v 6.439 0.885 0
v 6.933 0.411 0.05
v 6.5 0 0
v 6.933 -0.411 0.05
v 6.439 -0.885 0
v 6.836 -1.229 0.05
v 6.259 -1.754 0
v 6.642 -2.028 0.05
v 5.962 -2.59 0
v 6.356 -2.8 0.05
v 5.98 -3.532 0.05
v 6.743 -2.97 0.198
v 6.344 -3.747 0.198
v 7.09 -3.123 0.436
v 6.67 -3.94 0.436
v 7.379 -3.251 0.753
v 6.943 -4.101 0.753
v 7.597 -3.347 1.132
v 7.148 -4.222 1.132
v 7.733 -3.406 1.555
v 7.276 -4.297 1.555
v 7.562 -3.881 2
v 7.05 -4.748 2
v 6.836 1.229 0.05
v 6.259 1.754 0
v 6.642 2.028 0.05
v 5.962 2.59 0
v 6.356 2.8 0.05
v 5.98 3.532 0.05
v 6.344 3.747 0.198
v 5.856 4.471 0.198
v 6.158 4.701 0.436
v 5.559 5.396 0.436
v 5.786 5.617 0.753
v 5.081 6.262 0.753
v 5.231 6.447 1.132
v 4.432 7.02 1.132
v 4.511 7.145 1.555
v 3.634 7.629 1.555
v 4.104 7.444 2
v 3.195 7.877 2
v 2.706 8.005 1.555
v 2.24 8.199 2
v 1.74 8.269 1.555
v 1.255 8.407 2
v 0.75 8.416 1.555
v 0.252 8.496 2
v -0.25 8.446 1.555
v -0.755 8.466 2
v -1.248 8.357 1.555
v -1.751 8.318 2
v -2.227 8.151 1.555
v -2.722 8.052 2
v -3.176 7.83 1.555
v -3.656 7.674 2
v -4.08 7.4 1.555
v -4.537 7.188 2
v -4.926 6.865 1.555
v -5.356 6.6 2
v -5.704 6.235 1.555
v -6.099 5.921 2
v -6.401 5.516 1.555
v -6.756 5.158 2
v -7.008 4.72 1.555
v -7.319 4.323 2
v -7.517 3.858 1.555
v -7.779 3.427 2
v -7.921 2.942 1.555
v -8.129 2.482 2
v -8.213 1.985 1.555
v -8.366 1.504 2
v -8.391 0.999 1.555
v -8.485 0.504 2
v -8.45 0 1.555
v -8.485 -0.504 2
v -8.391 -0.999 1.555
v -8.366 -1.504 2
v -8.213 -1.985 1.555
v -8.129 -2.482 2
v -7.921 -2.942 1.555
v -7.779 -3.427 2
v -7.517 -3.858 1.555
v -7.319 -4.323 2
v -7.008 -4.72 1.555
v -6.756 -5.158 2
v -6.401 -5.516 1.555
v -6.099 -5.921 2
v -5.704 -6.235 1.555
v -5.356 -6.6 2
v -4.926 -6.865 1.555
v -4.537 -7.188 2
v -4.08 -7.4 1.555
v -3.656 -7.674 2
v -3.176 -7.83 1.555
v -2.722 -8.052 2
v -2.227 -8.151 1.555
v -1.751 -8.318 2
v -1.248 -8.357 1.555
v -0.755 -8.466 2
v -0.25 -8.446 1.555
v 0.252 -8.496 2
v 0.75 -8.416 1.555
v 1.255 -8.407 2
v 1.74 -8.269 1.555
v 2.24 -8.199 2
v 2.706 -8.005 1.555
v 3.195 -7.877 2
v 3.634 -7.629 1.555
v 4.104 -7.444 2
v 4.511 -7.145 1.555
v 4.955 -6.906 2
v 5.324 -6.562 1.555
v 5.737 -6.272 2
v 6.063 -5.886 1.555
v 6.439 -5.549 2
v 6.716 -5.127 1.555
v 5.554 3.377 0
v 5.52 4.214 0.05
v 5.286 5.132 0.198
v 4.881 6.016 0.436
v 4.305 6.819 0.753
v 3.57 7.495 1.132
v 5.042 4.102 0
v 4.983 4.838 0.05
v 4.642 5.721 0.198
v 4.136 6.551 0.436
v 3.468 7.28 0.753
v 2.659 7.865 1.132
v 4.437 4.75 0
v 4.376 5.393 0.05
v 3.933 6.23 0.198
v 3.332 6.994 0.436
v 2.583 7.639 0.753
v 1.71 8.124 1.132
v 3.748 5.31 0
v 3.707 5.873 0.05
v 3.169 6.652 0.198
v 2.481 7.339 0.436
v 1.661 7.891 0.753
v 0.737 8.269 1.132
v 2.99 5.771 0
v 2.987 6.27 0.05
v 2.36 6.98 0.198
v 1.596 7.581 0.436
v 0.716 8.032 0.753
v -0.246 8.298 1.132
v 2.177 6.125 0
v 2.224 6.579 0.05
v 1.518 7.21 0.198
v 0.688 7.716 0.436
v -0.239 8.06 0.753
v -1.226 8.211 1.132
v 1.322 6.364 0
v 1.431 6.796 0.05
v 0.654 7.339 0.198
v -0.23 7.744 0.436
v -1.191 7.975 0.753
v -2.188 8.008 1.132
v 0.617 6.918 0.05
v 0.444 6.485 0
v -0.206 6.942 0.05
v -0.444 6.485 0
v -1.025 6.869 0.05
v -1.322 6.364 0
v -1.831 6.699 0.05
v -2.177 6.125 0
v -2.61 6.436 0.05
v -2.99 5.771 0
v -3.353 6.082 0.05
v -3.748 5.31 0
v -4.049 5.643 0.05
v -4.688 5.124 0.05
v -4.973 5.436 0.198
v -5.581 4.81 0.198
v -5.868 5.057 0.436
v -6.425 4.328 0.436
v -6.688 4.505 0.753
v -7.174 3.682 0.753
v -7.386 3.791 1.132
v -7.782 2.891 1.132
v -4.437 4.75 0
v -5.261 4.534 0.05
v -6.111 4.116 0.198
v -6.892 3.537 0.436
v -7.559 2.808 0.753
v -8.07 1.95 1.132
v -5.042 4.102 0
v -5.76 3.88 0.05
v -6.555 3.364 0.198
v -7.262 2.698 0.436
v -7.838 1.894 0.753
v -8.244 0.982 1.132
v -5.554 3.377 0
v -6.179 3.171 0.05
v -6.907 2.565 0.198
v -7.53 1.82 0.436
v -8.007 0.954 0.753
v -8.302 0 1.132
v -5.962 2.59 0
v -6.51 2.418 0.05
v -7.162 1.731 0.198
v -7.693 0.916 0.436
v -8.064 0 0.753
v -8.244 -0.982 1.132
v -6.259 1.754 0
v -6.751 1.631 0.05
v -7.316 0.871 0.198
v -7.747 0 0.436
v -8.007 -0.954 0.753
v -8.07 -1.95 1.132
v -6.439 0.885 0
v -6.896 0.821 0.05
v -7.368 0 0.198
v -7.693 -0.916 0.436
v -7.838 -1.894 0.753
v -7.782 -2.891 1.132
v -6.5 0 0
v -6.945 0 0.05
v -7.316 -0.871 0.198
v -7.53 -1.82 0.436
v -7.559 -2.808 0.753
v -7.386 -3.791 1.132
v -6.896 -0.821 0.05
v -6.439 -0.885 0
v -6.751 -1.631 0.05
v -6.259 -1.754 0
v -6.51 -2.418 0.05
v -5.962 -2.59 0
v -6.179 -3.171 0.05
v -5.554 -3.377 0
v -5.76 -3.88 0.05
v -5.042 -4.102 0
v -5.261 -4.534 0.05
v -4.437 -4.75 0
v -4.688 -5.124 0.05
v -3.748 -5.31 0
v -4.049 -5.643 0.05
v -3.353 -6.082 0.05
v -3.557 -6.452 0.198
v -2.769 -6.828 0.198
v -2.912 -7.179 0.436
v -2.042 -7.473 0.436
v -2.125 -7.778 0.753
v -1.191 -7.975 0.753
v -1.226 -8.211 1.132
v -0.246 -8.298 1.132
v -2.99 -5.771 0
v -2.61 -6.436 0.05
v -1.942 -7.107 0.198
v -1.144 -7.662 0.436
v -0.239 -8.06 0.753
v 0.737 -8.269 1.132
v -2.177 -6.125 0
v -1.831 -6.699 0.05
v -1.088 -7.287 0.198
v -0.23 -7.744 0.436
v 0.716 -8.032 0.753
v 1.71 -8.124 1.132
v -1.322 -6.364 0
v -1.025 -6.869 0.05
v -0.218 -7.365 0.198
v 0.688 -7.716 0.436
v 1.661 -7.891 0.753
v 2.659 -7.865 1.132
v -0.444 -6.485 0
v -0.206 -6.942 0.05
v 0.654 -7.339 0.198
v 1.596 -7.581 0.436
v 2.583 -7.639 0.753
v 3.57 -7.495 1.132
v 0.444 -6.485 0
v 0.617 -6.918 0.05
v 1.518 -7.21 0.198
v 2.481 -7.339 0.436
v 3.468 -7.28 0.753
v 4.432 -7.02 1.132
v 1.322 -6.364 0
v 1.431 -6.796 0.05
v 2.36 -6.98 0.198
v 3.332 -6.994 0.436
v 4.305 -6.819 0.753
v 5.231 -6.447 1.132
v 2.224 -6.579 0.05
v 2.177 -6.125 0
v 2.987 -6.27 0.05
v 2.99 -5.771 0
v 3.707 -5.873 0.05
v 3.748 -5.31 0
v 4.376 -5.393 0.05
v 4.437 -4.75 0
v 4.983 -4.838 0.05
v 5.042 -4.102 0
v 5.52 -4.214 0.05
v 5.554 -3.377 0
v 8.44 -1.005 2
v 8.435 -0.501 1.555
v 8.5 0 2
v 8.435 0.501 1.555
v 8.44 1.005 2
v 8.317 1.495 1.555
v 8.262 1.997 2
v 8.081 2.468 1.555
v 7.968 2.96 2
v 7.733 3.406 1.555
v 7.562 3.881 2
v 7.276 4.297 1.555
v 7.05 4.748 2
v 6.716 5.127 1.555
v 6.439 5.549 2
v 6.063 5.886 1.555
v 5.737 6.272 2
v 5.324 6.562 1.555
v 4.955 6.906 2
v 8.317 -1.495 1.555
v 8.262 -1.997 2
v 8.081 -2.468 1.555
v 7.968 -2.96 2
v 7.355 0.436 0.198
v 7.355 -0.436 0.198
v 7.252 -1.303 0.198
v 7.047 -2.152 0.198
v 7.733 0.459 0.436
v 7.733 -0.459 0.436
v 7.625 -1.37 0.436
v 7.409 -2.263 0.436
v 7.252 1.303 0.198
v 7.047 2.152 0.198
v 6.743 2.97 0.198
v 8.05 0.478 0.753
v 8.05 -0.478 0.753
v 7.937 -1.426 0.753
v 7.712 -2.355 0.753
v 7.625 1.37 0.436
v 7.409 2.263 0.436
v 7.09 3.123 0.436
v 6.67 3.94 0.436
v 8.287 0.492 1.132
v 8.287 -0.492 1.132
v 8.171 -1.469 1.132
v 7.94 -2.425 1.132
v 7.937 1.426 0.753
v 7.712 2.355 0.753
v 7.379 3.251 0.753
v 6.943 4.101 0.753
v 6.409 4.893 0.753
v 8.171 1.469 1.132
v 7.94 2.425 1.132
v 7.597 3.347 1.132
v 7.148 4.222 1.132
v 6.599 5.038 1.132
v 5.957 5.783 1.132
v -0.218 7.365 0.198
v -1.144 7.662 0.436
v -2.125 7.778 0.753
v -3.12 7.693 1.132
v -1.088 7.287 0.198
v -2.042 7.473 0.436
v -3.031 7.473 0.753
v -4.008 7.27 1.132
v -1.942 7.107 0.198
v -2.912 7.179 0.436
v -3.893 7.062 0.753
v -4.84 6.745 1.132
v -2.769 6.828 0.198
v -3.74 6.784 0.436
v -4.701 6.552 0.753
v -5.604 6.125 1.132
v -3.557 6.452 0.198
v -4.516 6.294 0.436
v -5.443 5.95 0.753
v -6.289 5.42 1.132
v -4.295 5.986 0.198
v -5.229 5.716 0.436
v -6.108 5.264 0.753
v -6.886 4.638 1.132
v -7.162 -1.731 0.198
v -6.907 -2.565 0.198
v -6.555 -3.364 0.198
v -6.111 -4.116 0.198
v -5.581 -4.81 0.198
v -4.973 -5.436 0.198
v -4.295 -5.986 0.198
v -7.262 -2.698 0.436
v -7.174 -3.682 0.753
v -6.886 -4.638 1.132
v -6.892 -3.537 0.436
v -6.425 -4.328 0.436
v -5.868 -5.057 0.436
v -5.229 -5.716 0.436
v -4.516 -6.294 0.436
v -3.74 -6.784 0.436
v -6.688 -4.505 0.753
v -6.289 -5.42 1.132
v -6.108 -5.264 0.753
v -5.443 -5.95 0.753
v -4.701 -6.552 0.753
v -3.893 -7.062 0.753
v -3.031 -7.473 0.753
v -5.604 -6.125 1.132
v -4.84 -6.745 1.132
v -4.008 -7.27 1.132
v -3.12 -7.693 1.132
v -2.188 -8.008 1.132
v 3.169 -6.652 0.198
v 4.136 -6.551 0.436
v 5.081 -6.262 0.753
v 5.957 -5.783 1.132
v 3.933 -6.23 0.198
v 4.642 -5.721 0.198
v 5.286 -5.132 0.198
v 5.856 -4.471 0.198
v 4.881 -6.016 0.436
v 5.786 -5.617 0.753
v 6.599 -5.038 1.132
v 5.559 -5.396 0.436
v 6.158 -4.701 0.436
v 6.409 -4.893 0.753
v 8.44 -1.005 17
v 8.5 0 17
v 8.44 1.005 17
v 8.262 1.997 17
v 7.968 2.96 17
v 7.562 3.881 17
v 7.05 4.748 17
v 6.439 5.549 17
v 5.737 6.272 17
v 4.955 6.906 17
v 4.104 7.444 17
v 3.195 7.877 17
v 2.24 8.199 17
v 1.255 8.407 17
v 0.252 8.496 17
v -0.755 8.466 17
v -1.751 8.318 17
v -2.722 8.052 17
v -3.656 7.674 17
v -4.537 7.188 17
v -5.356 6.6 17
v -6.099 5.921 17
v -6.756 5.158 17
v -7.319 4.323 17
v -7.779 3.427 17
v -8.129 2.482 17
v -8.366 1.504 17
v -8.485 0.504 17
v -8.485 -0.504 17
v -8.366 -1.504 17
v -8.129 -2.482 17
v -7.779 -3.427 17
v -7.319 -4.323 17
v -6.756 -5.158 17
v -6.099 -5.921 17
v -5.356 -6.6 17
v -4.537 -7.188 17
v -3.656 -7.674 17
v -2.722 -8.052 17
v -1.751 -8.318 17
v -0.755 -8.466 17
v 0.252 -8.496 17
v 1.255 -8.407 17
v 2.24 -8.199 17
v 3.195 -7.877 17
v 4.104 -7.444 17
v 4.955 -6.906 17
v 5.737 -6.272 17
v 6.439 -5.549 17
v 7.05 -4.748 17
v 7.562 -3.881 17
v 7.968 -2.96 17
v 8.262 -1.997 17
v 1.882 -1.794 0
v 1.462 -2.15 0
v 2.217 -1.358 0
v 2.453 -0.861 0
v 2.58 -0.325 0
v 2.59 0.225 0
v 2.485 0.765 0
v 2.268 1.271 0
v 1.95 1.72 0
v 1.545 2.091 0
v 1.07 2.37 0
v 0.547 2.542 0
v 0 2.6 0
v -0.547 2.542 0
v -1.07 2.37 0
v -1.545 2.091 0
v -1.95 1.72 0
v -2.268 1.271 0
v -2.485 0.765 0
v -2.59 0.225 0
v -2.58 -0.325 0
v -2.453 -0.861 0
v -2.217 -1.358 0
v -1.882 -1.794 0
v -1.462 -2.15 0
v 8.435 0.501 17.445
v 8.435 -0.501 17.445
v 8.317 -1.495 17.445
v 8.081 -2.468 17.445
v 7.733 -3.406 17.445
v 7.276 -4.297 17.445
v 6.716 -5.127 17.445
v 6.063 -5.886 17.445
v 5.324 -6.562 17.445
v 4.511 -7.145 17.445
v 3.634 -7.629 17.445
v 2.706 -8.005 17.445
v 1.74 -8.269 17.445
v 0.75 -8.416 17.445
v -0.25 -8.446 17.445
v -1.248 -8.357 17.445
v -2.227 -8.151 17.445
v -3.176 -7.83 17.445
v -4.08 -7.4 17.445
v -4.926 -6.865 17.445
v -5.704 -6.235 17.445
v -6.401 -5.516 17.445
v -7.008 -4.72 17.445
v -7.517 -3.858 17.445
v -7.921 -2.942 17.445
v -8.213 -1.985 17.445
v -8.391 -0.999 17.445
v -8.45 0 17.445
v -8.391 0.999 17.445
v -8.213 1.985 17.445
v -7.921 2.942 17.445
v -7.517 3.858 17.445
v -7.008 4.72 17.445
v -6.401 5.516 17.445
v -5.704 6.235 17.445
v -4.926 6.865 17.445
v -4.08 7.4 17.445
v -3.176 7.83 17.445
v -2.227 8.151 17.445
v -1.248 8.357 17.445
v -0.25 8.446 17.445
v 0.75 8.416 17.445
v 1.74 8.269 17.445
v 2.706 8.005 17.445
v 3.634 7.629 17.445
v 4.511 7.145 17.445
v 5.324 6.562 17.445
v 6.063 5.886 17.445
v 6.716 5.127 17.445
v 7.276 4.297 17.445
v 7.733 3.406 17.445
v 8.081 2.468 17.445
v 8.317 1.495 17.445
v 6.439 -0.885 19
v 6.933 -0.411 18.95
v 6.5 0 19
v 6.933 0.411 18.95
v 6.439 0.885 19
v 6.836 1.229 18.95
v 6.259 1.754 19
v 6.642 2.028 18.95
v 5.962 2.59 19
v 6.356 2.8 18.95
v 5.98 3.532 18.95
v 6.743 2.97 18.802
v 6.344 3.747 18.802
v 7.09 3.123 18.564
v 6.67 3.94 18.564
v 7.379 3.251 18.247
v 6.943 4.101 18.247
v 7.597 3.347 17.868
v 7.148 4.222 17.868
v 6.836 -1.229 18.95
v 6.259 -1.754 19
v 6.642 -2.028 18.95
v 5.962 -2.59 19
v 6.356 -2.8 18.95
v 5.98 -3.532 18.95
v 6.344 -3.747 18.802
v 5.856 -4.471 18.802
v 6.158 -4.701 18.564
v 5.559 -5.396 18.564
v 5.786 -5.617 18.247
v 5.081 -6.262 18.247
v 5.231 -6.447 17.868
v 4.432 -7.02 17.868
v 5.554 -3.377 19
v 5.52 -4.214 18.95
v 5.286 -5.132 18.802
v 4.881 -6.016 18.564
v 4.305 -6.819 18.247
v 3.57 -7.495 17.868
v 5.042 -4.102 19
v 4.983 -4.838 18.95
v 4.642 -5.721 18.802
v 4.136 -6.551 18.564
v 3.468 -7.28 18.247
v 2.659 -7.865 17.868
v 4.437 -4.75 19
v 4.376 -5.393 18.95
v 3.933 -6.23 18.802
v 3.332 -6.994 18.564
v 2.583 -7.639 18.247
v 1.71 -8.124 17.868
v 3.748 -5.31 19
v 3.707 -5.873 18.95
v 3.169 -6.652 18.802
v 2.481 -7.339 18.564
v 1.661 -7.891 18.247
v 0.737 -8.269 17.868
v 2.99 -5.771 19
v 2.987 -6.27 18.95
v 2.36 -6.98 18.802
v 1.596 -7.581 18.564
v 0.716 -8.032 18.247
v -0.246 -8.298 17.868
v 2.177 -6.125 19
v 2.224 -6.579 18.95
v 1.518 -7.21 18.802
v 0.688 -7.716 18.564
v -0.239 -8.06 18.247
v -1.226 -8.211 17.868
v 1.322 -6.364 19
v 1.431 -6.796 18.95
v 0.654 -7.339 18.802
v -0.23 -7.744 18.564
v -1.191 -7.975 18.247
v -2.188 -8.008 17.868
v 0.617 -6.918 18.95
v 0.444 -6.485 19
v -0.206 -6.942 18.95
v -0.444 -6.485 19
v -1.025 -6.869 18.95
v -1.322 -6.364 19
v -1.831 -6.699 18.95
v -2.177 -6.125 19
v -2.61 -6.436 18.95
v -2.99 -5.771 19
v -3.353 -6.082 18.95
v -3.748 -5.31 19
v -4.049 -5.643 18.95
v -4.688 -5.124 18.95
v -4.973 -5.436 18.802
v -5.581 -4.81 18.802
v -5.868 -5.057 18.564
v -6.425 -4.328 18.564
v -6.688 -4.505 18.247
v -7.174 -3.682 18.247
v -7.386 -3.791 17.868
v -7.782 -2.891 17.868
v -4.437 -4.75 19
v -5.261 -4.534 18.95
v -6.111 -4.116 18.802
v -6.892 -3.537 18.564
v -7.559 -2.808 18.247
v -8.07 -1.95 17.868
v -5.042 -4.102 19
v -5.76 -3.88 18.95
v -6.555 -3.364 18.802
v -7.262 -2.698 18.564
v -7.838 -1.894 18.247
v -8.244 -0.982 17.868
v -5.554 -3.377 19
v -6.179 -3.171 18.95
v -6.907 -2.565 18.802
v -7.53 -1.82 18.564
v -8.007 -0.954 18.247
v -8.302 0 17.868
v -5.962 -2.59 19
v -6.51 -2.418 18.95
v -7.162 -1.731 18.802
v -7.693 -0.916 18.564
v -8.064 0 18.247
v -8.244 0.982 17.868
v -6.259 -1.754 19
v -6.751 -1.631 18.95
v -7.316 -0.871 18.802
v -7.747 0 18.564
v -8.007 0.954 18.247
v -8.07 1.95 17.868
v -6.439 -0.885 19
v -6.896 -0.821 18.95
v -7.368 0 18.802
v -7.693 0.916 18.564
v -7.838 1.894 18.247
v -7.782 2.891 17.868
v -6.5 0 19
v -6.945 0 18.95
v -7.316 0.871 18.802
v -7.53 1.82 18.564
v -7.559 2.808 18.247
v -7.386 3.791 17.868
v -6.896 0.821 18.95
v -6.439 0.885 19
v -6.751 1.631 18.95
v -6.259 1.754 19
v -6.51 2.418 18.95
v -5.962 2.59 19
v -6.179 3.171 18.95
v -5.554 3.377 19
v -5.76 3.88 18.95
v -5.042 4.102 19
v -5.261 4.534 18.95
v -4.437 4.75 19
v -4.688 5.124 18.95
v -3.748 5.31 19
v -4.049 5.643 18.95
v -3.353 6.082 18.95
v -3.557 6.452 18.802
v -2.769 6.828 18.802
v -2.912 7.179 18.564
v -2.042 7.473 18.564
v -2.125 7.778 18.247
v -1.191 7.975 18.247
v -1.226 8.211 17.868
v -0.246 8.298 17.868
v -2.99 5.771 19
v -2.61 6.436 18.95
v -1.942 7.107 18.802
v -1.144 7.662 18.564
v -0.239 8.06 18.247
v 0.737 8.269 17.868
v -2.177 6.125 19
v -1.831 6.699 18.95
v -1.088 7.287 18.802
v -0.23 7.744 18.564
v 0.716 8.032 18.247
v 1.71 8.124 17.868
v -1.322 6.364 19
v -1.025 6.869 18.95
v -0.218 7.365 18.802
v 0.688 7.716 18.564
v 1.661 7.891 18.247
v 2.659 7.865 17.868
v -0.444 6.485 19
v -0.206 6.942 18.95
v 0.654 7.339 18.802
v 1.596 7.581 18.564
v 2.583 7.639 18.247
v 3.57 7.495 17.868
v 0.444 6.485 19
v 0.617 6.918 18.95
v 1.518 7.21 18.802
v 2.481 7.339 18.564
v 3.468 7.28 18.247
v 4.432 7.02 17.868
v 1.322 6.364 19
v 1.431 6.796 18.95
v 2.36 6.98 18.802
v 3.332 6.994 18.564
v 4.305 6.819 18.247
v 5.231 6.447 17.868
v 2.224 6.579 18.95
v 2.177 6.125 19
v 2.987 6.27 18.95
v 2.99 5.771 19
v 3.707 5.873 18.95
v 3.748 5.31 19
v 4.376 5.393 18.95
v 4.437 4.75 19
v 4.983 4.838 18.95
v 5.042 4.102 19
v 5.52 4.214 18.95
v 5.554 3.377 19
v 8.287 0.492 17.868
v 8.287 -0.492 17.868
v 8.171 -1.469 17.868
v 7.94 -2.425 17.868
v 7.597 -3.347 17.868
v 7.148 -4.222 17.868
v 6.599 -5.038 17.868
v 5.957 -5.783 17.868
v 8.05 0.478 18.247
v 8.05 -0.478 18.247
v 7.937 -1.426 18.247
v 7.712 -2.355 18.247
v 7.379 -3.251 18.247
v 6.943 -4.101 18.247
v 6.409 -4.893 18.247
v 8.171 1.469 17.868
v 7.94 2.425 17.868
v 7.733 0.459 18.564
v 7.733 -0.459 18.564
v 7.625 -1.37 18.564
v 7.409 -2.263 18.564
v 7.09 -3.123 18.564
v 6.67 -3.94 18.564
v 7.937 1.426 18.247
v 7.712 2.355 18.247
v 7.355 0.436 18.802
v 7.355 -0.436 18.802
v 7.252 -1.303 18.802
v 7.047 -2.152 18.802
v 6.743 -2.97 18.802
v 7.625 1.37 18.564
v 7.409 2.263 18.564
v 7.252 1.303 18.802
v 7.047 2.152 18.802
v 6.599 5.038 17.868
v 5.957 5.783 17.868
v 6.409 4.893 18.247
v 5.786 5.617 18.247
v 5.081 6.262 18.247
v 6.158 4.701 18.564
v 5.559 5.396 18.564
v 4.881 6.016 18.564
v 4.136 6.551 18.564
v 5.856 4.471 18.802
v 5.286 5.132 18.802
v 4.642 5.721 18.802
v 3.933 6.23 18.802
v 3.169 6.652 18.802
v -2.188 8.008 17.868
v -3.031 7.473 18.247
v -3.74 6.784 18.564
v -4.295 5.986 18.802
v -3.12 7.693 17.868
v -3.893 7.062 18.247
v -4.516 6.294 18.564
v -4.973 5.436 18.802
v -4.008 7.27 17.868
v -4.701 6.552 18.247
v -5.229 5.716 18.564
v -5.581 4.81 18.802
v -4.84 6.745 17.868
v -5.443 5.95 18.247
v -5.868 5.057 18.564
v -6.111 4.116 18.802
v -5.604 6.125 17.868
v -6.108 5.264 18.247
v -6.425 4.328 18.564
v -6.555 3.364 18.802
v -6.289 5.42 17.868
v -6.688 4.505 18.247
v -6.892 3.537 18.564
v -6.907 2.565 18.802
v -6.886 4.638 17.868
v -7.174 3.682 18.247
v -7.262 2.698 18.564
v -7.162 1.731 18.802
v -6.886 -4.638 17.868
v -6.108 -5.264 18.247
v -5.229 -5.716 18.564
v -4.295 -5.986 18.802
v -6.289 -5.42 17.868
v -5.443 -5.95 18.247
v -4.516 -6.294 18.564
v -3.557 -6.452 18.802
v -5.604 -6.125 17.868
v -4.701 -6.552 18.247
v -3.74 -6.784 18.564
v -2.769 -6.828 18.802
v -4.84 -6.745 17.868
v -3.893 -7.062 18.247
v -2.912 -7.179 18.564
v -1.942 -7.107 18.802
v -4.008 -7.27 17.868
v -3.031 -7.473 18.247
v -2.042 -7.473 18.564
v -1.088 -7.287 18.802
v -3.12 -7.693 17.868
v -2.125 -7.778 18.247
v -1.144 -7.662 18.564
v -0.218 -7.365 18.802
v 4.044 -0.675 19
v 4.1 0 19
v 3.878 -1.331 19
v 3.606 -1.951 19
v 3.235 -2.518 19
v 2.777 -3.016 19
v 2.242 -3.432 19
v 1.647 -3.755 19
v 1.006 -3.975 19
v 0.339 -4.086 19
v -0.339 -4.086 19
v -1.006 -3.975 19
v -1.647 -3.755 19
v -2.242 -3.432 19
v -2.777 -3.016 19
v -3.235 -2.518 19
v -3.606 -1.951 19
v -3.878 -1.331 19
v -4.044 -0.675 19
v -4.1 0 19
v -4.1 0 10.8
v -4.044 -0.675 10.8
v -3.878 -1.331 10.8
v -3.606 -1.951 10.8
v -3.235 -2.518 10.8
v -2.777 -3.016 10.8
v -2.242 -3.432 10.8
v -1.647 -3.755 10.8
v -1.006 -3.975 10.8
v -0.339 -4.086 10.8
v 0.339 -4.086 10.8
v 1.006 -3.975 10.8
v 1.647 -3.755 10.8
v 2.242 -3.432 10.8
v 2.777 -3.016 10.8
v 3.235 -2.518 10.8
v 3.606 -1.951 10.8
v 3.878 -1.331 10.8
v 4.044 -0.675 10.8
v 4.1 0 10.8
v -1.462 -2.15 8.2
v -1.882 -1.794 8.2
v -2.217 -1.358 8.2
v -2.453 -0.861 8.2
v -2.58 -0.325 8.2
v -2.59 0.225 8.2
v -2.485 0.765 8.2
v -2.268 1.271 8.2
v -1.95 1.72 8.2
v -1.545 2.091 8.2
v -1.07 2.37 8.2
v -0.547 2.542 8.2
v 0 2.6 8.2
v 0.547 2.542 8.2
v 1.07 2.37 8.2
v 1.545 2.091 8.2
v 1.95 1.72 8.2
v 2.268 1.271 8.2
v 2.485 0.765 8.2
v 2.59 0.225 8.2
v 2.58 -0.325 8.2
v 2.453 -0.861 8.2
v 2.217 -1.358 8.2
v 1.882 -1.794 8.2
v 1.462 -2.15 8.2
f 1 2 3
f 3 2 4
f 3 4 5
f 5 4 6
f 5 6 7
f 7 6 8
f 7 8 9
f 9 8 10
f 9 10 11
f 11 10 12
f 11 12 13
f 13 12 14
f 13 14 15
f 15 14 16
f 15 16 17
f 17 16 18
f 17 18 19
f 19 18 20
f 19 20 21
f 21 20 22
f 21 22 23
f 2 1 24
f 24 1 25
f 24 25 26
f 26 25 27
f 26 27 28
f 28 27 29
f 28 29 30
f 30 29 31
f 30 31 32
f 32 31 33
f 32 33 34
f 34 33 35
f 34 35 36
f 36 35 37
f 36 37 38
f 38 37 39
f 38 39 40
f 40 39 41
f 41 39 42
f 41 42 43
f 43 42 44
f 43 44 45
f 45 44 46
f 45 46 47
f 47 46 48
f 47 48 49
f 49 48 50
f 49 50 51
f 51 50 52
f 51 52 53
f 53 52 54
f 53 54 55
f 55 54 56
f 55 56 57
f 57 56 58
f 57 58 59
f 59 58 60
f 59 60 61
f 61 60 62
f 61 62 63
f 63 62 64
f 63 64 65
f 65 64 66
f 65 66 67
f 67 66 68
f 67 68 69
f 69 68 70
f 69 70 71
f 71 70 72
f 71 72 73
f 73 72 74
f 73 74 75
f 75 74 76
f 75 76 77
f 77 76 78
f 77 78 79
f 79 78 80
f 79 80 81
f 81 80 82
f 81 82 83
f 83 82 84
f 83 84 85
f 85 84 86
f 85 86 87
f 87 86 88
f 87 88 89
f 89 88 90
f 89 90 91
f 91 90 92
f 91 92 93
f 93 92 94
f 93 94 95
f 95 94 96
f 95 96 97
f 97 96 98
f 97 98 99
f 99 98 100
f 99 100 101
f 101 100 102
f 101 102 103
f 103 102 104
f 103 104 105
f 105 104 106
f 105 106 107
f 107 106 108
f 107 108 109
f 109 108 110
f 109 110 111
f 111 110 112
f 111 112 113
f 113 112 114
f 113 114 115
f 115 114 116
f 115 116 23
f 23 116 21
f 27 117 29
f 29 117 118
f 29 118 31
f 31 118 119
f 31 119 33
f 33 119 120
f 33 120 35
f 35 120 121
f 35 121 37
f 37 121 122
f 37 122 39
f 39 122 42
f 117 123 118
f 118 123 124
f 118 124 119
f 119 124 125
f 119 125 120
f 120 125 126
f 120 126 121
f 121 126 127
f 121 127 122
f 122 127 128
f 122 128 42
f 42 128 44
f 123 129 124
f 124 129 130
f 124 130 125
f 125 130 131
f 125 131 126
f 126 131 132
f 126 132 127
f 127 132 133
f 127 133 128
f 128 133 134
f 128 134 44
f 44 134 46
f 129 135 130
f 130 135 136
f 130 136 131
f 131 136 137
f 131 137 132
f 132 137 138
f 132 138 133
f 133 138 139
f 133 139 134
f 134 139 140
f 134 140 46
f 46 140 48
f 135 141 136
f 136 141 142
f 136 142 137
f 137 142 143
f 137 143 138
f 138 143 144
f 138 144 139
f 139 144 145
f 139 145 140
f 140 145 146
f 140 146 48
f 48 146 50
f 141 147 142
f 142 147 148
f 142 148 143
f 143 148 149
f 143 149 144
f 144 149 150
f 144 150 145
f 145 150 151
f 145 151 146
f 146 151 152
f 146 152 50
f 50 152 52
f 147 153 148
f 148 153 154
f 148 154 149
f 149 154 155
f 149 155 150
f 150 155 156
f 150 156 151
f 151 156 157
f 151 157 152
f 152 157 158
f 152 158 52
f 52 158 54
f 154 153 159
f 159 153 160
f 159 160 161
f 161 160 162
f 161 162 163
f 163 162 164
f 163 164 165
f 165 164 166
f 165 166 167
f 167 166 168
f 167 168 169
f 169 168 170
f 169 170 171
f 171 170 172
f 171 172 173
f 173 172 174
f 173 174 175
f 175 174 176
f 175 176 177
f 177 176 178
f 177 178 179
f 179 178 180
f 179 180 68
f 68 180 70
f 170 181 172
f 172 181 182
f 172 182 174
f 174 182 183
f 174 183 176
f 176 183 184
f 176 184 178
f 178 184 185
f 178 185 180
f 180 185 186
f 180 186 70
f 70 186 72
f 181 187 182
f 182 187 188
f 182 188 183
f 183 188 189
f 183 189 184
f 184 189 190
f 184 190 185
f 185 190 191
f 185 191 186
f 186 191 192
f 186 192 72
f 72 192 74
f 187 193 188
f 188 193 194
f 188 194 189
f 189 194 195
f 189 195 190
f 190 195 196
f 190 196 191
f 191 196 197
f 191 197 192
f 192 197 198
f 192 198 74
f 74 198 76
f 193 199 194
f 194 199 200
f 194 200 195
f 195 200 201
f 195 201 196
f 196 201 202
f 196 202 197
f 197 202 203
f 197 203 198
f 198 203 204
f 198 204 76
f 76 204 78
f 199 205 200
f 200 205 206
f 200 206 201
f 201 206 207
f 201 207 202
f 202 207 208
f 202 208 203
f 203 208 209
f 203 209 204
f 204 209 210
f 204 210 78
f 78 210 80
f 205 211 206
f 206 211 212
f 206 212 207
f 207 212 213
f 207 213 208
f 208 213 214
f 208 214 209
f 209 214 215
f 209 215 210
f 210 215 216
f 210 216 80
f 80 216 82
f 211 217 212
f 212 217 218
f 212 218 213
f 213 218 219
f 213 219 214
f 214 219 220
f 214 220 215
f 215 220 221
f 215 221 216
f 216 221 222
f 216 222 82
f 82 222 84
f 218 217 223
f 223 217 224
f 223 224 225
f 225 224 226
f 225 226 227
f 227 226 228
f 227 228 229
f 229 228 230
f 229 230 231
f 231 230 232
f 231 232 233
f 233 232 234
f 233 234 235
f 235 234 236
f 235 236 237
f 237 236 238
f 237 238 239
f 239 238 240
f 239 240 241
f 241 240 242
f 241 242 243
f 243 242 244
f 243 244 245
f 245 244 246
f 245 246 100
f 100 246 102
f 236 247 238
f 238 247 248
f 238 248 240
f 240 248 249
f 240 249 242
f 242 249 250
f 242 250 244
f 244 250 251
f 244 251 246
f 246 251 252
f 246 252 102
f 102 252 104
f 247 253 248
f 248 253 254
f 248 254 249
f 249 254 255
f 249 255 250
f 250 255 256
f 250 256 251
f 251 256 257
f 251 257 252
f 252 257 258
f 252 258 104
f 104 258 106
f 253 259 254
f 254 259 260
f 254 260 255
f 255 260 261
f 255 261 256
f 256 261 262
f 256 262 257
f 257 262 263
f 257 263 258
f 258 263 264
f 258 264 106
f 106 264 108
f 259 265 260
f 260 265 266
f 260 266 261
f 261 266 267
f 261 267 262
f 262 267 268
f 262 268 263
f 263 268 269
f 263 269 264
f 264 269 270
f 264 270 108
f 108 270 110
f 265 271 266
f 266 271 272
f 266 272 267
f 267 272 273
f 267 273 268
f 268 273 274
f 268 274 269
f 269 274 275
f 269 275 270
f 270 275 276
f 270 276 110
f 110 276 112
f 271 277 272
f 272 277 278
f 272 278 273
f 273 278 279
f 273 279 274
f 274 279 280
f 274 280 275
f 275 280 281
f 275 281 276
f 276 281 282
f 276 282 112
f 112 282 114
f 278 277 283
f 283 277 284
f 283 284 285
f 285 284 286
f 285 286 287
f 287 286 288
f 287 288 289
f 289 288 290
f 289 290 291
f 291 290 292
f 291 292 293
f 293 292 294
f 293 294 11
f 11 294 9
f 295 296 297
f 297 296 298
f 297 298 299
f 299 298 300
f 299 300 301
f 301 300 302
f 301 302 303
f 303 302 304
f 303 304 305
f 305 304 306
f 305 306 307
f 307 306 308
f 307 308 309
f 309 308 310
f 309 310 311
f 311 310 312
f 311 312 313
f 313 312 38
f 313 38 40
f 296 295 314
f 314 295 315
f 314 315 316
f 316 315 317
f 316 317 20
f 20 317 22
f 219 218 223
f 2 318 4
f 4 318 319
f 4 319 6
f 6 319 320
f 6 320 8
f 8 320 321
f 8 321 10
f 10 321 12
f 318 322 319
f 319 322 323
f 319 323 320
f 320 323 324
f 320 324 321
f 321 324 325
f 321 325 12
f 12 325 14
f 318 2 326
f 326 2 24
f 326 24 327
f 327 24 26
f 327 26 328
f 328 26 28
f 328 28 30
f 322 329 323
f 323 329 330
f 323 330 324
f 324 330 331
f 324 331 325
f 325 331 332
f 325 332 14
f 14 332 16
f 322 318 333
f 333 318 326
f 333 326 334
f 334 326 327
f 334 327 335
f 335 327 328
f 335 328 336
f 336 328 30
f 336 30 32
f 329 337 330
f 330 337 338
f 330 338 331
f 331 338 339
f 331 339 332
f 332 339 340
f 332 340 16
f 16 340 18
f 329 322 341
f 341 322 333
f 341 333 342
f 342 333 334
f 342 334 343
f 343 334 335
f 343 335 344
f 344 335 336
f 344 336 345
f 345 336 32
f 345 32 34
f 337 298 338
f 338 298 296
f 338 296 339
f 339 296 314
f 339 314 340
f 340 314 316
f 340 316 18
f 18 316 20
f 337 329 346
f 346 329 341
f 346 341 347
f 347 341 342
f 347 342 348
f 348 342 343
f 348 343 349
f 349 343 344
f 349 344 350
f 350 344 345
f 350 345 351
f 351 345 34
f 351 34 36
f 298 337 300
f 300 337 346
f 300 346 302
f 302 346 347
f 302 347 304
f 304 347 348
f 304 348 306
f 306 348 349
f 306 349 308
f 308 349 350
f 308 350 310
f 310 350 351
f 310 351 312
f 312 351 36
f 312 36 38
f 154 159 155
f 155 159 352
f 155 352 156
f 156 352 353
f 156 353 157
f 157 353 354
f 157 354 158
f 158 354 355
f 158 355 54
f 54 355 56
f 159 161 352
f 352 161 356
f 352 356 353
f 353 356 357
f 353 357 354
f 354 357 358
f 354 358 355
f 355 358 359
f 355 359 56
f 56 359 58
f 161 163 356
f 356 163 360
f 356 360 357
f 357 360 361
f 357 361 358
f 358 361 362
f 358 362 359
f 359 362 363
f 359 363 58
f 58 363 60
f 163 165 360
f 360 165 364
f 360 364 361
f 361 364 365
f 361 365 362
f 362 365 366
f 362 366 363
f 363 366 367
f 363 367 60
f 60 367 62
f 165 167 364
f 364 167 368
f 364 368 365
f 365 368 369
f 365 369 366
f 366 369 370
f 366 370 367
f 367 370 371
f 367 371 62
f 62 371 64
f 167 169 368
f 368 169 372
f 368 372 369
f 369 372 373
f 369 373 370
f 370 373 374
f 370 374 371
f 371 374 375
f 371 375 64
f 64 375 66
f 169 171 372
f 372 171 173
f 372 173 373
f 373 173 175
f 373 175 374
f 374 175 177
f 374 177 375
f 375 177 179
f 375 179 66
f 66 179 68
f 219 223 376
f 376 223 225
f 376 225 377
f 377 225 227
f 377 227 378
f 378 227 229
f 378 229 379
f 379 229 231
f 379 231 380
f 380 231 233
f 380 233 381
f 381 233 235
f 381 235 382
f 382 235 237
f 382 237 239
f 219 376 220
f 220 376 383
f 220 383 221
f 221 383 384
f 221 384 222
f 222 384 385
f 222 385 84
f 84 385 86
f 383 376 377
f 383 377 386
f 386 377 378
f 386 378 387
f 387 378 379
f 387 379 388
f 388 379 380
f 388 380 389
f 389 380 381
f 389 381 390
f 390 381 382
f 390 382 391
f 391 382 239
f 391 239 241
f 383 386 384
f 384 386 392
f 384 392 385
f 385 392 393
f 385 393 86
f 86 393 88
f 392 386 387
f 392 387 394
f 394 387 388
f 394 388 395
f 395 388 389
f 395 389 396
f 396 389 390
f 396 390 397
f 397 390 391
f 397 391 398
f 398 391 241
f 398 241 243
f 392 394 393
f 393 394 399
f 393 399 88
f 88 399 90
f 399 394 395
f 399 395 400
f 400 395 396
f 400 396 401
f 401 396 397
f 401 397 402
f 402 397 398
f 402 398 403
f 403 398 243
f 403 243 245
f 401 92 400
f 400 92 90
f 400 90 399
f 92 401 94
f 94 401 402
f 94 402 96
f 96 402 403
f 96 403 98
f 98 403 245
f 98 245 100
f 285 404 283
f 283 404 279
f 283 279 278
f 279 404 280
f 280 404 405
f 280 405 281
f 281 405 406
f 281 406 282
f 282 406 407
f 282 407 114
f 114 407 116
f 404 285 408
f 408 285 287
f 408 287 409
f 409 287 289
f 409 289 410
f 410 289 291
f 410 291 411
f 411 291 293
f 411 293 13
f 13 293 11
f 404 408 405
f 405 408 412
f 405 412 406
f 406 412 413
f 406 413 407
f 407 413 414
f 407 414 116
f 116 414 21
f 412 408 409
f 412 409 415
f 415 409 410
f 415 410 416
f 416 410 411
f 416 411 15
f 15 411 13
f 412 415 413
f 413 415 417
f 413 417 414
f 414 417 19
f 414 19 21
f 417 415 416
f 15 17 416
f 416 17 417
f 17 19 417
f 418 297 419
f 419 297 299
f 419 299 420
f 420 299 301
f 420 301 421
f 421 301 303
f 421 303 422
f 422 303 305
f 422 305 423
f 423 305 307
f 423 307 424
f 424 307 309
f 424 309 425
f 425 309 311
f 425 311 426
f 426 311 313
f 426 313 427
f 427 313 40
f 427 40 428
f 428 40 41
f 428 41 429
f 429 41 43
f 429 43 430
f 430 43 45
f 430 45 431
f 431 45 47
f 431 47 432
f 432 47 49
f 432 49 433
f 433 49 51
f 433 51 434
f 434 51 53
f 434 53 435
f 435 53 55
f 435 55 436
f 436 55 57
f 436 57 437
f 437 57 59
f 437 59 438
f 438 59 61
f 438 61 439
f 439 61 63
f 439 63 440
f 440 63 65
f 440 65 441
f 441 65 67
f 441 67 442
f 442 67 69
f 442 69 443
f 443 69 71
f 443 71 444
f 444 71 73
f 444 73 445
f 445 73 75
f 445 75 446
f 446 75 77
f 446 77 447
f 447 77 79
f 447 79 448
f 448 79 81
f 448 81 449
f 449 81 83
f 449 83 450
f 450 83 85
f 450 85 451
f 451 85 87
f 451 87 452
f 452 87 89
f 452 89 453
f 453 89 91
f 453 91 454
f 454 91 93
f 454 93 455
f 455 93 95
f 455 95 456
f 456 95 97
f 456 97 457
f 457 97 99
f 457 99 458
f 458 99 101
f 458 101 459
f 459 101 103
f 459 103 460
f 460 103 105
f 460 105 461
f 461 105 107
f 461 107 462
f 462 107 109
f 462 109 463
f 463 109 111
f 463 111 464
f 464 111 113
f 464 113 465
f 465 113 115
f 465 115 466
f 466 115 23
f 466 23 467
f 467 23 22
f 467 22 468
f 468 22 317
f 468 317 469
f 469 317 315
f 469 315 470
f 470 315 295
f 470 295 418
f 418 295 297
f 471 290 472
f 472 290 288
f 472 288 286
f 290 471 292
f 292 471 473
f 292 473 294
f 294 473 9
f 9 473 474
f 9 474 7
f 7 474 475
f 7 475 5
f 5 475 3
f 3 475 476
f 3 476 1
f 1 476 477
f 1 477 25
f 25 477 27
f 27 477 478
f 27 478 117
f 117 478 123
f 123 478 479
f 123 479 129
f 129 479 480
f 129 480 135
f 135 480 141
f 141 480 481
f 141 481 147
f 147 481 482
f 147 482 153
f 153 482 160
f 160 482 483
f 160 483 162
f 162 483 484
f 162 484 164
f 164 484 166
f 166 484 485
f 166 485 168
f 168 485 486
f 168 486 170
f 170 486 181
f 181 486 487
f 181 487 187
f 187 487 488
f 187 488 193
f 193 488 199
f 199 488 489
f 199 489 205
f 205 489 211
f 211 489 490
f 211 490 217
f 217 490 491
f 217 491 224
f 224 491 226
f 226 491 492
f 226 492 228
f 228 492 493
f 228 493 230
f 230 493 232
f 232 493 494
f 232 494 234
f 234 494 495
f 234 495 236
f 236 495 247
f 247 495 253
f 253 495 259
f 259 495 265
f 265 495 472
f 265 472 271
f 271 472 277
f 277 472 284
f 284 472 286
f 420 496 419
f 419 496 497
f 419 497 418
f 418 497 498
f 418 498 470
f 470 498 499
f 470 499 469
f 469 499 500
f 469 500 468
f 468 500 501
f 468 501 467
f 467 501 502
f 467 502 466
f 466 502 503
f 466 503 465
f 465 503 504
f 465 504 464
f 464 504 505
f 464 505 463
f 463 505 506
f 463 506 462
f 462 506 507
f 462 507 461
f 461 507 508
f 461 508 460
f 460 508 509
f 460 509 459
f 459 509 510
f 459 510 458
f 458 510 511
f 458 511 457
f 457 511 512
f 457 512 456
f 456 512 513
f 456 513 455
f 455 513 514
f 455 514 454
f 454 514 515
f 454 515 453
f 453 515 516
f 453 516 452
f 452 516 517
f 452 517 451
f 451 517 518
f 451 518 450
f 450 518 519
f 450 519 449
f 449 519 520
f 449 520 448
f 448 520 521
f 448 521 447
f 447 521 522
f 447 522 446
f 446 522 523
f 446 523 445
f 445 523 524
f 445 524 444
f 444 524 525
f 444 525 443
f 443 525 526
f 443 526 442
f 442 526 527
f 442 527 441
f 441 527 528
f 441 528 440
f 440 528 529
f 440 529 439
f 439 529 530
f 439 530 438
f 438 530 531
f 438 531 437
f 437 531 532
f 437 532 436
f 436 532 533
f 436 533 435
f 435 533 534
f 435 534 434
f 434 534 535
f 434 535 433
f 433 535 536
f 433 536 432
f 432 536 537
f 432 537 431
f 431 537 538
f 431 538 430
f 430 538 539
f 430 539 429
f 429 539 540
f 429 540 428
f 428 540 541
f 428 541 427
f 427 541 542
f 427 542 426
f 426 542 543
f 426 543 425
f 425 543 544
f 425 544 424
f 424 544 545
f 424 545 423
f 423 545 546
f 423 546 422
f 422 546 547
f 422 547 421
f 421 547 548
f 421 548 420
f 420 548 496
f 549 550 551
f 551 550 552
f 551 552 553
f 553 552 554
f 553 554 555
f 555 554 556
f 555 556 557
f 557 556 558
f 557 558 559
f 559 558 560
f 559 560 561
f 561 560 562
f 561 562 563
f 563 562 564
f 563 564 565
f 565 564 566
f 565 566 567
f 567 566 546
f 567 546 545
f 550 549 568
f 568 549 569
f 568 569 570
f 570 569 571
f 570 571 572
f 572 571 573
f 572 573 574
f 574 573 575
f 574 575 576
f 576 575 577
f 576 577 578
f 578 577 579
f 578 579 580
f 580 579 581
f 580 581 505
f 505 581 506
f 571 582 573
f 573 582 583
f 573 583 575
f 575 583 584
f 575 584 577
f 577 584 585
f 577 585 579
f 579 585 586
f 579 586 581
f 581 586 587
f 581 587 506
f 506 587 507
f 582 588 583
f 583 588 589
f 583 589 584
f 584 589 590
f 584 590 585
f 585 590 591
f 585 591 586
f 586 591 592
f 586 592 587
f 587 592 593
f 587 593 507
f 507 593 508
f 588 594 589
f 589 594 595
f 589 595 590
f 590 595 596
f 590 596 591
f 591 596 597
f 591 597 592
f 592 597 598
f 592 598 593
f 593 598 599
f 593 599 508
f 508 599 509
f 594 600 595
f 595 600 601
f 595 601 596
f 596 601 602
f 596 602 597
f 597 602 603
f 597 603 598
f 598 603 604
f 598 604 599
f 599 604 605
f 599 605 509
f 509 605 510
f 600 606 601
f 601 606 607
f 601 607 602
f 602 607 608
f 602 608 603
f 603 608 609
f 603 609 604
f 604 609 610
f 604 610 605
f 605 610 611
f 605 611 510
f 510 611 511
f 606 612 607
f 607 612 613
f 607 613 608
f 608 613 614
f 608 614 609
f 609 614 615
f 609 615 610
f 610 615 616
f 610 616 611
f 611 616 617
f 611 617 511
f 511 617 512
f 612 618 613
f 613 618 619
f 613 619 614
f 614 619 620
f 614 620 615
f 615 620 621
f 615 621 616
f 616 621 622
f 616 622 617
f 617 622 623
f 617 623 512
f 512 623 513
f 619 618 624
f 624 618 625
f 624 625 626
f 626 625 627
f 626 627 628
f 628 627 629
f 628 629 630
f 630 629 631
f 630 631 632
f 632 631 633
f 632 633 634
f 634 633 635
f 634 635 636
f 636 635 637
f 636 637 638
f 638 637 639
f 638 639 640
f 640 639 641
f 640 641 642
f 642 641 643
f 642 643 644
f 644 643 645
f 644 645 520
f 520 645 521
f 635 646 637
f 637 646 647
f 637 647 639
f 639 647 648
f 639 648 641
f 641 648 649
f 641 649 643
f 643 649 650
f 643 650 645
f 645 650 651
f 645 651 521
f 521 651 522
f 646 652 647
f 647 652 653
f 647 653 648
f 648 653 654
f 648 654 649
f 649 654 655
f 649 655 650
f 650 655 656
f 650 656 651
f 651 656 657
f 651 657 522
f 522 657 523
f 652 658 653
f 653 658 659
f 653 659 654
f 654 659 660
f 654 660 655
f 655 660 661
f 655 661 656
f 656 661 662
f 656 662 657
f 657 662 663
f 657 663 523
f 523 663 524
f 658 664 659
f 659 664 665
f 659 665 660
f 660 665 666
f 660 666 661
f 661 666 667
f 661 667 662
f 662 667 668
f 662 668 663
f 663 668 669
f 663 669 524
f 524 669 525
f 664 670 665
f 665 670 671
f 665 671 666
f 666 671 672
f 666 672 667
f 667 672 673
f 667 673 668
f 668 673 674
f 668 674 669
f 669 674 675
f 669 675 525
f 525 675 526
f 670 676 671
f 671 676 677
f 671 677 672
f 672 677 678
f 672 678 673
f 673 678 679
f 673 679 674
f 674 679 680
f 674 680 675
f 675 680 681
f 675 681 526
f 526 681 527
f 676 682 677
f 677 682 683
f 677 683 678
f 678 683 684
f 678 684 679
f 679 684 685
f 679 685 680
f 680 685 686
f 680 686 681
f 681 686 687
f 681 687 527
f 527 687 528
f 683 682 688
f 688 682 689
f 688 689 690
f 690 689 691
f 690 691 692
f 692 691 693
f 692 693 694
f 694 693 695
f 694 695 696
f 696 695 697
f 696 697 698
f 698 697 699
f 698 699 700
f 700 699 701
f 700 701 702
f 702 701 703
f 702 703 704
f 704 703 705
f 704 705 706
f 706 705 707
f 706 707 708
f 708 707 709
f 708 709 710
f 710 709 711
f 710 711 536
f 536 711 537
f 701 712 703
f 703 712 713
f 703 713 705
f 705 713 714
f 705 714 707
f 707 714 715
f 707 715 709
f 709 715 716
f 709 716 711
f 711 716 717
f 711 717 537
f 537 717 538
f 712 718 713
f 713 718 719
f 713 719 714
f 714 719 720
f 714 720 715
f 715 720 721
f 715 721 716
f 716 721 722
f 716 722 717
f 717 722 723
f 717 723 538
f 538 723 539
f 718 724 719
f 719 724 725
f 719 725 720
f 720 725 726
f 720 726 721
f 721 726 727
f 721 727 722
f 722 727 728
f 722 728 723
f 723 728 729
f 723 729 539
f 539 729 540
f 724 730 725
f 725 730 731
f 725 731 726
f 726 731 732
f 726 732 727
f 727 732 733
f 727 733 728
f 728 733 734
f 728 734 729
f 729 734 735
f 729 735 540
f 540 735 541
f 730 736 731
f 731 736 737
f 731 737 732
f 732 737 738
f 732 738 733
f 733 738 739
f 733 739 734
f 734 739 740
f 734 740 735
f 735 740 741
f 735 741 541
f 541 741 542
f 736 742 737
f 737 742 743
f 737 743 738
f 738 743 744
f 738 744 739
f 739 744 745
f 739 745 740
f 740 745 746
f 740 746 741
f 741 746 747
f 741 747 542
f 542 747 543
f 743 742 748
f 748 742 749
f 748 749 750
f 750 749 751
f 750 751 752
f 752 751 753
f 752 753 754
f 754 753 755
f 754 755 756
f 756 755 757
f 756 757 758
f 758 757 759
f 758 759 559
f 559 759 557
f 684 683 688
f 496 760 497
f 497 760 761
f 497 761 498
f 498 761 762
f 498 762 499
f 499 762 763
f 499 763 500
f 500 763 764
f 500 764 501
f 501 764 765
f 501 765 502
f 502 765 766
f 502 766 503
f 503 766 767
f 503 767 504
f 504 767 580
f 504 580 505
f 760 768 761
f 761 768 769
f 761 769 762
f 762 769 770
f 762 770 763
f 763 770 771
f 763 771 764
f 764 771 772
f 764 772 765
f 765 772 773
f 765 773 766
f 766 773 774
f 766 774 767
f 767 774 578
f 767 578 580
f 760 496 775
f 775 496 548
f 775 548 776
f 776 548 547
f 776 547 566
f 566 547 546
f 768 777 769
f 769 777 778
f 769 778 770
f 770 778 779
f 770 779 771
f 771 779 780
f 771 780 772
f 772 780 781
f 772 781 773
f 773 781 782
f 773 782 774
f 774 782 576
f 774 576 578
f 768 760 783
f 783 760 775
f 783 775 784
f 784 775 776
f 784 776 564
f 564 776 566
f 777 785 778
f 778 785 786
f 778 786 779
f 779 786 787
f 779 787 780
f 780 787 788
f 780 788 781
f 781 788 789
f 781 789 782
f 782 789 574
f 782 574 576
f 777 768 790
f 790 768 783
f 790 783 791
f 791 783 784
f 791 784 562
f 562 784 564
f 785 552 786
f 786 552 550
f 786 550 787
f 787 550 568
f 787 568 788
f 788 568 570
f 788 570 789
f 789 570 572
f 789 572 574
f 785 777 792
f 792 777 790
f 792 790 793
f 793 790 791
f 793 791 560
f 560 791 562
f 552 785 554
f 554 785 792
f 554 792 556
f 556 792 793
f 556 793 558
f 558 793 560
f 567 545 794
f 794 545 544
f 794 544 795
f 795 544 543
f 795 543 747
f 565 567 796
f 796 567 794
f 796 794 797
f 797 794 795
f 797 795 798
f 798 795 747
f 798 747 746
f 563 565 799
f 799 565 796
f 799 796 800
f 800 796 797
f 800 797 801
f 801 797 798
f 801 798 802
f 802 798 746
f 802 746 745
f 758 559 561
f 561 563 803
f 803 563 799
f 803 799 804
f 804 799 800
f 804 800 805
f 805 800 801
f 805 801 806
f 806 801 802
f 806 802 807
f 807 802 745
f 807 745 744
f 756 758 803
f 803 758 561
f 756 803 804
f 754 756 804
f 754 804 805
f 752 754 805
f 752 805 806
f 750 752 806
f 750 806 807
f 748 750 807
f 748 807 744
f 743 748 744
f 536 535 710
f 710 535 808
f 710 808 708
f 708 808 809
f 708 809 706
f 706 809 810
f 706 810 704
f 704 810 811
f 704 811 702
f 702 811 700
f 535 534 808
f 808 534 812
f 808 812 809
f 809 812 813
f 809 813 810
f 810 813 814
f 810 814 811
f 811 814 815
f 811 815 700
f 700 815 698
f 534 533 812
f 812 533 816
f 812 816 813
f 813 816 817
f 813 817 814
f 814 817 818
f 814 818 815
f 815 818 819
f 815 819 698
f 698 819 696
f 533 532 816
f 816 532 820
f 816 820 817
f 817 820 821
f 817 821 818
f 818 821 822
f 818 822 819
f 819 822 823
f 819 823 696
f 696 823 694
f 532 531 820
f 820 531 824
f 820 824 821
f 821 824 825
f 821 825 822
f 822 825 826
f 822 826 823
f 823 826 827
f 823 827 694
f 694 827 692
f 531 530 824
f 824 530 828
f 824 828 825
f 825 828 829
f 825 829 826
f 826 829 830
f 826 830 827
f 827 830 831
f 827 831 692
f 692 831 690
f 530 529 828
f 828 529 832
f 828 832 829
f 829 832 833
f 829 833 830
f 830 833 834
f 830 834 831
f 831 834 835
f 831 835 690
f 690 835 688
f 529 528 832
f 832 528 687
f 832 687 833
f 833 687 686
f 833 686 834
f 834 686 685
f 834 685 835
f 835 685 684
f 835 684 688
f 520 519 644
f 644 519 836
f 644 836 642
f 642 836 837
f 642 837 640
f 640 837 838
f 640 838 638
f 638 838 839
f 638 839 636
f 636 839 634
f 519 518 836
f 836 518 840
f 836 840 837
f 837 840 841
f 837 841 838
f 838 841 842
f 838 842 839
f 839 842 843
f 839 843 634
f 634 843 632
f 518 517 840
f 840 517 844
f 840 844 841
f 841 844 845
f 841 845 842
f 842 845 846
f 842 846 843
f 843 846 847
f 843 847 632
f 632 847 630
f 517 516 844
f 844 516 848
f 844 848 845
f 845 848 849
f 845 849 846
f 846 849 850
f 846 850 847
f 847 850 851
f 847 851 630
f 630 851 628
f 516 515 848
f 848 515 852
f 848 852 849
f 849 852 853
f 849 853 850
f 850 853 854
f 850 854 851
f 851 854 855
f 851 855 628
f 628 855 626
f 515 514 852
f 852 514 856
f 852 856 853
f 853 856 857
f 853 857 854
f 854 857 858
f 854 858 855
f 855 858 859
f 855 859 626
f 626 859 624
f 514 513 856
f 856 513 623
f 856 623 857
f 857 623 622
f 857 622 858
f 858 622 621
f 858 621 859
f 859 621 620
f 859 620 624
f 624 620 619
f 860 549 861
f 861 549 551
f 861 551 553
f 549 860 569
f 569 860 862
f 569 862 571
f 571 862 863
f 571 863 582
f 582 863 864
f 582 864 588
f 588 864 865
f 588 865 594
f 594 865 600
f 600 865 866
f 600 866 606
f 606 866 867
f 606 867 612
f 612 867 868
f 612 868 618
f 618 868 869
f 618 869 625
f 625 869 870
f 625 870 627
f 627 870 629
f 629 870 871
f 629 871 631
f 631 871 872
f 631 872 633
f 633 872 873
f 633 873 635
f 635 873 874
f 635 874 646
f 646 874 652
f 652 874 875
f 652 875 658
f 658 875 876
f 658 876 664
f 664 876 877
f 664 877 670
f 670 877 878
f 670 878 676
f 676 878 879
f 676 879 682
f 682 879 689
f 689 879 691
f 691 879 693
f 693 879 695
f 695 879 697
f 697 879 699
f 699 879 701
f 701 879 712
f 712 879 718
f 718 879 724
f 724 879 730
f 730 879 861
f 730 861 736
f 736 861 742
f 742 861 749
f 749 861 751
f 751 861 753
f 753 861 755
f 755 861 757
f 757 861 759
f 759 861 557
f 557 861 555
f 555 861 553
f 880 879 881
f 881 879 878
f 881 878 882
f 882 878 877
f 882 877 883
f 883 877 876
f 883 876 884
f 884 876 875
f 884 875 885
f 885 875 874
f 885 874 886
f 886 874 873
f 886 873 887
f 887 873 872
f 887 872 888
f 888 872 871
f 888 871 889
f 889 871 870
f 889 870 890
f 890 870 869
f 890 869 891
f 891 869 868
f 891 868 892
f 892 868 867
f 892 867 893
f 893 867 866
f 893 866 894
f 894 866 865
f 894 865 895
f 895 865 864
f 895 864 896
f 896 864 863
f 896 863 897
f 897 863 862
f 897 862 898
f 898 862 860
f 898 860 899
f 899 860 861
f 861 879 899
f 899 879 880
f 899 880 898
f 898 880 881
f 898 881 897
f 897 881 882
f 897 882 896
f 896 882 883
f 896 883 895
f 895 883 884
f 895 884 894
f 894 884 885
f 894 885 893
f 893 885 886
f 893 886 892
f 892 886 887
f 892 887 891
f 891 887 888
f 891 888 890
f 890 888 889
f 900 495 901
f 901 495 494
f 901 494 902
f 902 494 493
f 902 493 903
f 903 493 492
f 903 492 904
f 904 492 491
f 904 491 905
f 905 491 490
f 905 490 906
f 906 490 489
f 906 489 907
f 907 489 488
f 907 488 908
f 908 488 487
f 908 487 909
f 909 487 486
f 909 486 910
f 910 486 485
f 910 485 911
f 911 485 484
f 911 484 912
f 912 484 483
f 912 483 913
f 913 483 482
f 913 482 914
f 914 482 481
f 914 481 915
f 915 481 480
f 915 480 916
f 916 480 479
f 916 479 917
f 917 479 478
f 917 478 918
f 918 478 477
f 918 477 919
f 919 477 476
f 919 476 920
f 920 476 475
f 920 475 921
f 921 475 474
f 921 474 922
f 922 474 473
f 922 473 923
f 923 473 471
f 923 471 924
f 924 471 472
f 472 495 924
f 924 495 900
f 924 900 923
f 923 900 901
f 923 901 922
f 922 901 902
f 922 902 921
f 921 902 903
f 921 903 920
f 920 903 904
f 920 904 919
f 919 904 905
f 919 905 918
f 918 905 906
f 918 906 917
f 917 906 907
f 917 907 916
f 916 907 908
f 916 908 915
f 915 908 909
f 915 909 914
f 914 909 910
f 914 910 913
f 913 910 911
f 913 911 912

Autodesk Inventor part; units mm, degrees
ref_plane "YZ Plane" through (0, 0, 0) normal (1, 0, 0) x (0, 1, 0)
ref_plane "XZ Plane" through (0, 0, 0) normal (0, 1, 0) x (-1, 0, 0)
ref_plane "XY Plane" through (0, 0, 0) normal (0, 0, 1) x (1, 0, 0)
sketch "Skizze1" plane through (0, 0, 0) normal (0, 0, 1) x (1, 0, 0)
  circle A0 centre (0, 0) radius 8.5
  dimension "d0" = 17
extrude "Extrusion1" add sketch "Skizze1" along normal blind 19
fillet "Rundung1" radius 2 2 edges at (-8.5, 0, 19) (-8.5, 0, 0)
sketch "Skizze2" plane through (0, 0, 19) normal (0, 0, 1) x (1, 0, 0)
  arc A0 (-4.1, 0) -> (4.1, 0) centre (0, 0) ccw
  line L0 (-4.1, 0) -> (4.1, 0)
  dimension "d4" = 8.2
extrude "Extrusion2" cut sketch "Skizze2" against normal blind 8.2
sketch "Skizze3" plane through (0, 0, 0) normal (0, 0, -1) x (-1, 0, 0)
  arc A0 (1.462, -2.15) -> (-1.462, -2.15) centre (0, 0) ccw
  line L0 (-1.462, -2.15) -> (1.462, -2.15)
  point P0 (0, -2.15)
  dimension "d8" = 5.2
extrude "Extrusion3" cut sketch "Skizze3" against normal blind 8.2
properties part number "Connector 001"
